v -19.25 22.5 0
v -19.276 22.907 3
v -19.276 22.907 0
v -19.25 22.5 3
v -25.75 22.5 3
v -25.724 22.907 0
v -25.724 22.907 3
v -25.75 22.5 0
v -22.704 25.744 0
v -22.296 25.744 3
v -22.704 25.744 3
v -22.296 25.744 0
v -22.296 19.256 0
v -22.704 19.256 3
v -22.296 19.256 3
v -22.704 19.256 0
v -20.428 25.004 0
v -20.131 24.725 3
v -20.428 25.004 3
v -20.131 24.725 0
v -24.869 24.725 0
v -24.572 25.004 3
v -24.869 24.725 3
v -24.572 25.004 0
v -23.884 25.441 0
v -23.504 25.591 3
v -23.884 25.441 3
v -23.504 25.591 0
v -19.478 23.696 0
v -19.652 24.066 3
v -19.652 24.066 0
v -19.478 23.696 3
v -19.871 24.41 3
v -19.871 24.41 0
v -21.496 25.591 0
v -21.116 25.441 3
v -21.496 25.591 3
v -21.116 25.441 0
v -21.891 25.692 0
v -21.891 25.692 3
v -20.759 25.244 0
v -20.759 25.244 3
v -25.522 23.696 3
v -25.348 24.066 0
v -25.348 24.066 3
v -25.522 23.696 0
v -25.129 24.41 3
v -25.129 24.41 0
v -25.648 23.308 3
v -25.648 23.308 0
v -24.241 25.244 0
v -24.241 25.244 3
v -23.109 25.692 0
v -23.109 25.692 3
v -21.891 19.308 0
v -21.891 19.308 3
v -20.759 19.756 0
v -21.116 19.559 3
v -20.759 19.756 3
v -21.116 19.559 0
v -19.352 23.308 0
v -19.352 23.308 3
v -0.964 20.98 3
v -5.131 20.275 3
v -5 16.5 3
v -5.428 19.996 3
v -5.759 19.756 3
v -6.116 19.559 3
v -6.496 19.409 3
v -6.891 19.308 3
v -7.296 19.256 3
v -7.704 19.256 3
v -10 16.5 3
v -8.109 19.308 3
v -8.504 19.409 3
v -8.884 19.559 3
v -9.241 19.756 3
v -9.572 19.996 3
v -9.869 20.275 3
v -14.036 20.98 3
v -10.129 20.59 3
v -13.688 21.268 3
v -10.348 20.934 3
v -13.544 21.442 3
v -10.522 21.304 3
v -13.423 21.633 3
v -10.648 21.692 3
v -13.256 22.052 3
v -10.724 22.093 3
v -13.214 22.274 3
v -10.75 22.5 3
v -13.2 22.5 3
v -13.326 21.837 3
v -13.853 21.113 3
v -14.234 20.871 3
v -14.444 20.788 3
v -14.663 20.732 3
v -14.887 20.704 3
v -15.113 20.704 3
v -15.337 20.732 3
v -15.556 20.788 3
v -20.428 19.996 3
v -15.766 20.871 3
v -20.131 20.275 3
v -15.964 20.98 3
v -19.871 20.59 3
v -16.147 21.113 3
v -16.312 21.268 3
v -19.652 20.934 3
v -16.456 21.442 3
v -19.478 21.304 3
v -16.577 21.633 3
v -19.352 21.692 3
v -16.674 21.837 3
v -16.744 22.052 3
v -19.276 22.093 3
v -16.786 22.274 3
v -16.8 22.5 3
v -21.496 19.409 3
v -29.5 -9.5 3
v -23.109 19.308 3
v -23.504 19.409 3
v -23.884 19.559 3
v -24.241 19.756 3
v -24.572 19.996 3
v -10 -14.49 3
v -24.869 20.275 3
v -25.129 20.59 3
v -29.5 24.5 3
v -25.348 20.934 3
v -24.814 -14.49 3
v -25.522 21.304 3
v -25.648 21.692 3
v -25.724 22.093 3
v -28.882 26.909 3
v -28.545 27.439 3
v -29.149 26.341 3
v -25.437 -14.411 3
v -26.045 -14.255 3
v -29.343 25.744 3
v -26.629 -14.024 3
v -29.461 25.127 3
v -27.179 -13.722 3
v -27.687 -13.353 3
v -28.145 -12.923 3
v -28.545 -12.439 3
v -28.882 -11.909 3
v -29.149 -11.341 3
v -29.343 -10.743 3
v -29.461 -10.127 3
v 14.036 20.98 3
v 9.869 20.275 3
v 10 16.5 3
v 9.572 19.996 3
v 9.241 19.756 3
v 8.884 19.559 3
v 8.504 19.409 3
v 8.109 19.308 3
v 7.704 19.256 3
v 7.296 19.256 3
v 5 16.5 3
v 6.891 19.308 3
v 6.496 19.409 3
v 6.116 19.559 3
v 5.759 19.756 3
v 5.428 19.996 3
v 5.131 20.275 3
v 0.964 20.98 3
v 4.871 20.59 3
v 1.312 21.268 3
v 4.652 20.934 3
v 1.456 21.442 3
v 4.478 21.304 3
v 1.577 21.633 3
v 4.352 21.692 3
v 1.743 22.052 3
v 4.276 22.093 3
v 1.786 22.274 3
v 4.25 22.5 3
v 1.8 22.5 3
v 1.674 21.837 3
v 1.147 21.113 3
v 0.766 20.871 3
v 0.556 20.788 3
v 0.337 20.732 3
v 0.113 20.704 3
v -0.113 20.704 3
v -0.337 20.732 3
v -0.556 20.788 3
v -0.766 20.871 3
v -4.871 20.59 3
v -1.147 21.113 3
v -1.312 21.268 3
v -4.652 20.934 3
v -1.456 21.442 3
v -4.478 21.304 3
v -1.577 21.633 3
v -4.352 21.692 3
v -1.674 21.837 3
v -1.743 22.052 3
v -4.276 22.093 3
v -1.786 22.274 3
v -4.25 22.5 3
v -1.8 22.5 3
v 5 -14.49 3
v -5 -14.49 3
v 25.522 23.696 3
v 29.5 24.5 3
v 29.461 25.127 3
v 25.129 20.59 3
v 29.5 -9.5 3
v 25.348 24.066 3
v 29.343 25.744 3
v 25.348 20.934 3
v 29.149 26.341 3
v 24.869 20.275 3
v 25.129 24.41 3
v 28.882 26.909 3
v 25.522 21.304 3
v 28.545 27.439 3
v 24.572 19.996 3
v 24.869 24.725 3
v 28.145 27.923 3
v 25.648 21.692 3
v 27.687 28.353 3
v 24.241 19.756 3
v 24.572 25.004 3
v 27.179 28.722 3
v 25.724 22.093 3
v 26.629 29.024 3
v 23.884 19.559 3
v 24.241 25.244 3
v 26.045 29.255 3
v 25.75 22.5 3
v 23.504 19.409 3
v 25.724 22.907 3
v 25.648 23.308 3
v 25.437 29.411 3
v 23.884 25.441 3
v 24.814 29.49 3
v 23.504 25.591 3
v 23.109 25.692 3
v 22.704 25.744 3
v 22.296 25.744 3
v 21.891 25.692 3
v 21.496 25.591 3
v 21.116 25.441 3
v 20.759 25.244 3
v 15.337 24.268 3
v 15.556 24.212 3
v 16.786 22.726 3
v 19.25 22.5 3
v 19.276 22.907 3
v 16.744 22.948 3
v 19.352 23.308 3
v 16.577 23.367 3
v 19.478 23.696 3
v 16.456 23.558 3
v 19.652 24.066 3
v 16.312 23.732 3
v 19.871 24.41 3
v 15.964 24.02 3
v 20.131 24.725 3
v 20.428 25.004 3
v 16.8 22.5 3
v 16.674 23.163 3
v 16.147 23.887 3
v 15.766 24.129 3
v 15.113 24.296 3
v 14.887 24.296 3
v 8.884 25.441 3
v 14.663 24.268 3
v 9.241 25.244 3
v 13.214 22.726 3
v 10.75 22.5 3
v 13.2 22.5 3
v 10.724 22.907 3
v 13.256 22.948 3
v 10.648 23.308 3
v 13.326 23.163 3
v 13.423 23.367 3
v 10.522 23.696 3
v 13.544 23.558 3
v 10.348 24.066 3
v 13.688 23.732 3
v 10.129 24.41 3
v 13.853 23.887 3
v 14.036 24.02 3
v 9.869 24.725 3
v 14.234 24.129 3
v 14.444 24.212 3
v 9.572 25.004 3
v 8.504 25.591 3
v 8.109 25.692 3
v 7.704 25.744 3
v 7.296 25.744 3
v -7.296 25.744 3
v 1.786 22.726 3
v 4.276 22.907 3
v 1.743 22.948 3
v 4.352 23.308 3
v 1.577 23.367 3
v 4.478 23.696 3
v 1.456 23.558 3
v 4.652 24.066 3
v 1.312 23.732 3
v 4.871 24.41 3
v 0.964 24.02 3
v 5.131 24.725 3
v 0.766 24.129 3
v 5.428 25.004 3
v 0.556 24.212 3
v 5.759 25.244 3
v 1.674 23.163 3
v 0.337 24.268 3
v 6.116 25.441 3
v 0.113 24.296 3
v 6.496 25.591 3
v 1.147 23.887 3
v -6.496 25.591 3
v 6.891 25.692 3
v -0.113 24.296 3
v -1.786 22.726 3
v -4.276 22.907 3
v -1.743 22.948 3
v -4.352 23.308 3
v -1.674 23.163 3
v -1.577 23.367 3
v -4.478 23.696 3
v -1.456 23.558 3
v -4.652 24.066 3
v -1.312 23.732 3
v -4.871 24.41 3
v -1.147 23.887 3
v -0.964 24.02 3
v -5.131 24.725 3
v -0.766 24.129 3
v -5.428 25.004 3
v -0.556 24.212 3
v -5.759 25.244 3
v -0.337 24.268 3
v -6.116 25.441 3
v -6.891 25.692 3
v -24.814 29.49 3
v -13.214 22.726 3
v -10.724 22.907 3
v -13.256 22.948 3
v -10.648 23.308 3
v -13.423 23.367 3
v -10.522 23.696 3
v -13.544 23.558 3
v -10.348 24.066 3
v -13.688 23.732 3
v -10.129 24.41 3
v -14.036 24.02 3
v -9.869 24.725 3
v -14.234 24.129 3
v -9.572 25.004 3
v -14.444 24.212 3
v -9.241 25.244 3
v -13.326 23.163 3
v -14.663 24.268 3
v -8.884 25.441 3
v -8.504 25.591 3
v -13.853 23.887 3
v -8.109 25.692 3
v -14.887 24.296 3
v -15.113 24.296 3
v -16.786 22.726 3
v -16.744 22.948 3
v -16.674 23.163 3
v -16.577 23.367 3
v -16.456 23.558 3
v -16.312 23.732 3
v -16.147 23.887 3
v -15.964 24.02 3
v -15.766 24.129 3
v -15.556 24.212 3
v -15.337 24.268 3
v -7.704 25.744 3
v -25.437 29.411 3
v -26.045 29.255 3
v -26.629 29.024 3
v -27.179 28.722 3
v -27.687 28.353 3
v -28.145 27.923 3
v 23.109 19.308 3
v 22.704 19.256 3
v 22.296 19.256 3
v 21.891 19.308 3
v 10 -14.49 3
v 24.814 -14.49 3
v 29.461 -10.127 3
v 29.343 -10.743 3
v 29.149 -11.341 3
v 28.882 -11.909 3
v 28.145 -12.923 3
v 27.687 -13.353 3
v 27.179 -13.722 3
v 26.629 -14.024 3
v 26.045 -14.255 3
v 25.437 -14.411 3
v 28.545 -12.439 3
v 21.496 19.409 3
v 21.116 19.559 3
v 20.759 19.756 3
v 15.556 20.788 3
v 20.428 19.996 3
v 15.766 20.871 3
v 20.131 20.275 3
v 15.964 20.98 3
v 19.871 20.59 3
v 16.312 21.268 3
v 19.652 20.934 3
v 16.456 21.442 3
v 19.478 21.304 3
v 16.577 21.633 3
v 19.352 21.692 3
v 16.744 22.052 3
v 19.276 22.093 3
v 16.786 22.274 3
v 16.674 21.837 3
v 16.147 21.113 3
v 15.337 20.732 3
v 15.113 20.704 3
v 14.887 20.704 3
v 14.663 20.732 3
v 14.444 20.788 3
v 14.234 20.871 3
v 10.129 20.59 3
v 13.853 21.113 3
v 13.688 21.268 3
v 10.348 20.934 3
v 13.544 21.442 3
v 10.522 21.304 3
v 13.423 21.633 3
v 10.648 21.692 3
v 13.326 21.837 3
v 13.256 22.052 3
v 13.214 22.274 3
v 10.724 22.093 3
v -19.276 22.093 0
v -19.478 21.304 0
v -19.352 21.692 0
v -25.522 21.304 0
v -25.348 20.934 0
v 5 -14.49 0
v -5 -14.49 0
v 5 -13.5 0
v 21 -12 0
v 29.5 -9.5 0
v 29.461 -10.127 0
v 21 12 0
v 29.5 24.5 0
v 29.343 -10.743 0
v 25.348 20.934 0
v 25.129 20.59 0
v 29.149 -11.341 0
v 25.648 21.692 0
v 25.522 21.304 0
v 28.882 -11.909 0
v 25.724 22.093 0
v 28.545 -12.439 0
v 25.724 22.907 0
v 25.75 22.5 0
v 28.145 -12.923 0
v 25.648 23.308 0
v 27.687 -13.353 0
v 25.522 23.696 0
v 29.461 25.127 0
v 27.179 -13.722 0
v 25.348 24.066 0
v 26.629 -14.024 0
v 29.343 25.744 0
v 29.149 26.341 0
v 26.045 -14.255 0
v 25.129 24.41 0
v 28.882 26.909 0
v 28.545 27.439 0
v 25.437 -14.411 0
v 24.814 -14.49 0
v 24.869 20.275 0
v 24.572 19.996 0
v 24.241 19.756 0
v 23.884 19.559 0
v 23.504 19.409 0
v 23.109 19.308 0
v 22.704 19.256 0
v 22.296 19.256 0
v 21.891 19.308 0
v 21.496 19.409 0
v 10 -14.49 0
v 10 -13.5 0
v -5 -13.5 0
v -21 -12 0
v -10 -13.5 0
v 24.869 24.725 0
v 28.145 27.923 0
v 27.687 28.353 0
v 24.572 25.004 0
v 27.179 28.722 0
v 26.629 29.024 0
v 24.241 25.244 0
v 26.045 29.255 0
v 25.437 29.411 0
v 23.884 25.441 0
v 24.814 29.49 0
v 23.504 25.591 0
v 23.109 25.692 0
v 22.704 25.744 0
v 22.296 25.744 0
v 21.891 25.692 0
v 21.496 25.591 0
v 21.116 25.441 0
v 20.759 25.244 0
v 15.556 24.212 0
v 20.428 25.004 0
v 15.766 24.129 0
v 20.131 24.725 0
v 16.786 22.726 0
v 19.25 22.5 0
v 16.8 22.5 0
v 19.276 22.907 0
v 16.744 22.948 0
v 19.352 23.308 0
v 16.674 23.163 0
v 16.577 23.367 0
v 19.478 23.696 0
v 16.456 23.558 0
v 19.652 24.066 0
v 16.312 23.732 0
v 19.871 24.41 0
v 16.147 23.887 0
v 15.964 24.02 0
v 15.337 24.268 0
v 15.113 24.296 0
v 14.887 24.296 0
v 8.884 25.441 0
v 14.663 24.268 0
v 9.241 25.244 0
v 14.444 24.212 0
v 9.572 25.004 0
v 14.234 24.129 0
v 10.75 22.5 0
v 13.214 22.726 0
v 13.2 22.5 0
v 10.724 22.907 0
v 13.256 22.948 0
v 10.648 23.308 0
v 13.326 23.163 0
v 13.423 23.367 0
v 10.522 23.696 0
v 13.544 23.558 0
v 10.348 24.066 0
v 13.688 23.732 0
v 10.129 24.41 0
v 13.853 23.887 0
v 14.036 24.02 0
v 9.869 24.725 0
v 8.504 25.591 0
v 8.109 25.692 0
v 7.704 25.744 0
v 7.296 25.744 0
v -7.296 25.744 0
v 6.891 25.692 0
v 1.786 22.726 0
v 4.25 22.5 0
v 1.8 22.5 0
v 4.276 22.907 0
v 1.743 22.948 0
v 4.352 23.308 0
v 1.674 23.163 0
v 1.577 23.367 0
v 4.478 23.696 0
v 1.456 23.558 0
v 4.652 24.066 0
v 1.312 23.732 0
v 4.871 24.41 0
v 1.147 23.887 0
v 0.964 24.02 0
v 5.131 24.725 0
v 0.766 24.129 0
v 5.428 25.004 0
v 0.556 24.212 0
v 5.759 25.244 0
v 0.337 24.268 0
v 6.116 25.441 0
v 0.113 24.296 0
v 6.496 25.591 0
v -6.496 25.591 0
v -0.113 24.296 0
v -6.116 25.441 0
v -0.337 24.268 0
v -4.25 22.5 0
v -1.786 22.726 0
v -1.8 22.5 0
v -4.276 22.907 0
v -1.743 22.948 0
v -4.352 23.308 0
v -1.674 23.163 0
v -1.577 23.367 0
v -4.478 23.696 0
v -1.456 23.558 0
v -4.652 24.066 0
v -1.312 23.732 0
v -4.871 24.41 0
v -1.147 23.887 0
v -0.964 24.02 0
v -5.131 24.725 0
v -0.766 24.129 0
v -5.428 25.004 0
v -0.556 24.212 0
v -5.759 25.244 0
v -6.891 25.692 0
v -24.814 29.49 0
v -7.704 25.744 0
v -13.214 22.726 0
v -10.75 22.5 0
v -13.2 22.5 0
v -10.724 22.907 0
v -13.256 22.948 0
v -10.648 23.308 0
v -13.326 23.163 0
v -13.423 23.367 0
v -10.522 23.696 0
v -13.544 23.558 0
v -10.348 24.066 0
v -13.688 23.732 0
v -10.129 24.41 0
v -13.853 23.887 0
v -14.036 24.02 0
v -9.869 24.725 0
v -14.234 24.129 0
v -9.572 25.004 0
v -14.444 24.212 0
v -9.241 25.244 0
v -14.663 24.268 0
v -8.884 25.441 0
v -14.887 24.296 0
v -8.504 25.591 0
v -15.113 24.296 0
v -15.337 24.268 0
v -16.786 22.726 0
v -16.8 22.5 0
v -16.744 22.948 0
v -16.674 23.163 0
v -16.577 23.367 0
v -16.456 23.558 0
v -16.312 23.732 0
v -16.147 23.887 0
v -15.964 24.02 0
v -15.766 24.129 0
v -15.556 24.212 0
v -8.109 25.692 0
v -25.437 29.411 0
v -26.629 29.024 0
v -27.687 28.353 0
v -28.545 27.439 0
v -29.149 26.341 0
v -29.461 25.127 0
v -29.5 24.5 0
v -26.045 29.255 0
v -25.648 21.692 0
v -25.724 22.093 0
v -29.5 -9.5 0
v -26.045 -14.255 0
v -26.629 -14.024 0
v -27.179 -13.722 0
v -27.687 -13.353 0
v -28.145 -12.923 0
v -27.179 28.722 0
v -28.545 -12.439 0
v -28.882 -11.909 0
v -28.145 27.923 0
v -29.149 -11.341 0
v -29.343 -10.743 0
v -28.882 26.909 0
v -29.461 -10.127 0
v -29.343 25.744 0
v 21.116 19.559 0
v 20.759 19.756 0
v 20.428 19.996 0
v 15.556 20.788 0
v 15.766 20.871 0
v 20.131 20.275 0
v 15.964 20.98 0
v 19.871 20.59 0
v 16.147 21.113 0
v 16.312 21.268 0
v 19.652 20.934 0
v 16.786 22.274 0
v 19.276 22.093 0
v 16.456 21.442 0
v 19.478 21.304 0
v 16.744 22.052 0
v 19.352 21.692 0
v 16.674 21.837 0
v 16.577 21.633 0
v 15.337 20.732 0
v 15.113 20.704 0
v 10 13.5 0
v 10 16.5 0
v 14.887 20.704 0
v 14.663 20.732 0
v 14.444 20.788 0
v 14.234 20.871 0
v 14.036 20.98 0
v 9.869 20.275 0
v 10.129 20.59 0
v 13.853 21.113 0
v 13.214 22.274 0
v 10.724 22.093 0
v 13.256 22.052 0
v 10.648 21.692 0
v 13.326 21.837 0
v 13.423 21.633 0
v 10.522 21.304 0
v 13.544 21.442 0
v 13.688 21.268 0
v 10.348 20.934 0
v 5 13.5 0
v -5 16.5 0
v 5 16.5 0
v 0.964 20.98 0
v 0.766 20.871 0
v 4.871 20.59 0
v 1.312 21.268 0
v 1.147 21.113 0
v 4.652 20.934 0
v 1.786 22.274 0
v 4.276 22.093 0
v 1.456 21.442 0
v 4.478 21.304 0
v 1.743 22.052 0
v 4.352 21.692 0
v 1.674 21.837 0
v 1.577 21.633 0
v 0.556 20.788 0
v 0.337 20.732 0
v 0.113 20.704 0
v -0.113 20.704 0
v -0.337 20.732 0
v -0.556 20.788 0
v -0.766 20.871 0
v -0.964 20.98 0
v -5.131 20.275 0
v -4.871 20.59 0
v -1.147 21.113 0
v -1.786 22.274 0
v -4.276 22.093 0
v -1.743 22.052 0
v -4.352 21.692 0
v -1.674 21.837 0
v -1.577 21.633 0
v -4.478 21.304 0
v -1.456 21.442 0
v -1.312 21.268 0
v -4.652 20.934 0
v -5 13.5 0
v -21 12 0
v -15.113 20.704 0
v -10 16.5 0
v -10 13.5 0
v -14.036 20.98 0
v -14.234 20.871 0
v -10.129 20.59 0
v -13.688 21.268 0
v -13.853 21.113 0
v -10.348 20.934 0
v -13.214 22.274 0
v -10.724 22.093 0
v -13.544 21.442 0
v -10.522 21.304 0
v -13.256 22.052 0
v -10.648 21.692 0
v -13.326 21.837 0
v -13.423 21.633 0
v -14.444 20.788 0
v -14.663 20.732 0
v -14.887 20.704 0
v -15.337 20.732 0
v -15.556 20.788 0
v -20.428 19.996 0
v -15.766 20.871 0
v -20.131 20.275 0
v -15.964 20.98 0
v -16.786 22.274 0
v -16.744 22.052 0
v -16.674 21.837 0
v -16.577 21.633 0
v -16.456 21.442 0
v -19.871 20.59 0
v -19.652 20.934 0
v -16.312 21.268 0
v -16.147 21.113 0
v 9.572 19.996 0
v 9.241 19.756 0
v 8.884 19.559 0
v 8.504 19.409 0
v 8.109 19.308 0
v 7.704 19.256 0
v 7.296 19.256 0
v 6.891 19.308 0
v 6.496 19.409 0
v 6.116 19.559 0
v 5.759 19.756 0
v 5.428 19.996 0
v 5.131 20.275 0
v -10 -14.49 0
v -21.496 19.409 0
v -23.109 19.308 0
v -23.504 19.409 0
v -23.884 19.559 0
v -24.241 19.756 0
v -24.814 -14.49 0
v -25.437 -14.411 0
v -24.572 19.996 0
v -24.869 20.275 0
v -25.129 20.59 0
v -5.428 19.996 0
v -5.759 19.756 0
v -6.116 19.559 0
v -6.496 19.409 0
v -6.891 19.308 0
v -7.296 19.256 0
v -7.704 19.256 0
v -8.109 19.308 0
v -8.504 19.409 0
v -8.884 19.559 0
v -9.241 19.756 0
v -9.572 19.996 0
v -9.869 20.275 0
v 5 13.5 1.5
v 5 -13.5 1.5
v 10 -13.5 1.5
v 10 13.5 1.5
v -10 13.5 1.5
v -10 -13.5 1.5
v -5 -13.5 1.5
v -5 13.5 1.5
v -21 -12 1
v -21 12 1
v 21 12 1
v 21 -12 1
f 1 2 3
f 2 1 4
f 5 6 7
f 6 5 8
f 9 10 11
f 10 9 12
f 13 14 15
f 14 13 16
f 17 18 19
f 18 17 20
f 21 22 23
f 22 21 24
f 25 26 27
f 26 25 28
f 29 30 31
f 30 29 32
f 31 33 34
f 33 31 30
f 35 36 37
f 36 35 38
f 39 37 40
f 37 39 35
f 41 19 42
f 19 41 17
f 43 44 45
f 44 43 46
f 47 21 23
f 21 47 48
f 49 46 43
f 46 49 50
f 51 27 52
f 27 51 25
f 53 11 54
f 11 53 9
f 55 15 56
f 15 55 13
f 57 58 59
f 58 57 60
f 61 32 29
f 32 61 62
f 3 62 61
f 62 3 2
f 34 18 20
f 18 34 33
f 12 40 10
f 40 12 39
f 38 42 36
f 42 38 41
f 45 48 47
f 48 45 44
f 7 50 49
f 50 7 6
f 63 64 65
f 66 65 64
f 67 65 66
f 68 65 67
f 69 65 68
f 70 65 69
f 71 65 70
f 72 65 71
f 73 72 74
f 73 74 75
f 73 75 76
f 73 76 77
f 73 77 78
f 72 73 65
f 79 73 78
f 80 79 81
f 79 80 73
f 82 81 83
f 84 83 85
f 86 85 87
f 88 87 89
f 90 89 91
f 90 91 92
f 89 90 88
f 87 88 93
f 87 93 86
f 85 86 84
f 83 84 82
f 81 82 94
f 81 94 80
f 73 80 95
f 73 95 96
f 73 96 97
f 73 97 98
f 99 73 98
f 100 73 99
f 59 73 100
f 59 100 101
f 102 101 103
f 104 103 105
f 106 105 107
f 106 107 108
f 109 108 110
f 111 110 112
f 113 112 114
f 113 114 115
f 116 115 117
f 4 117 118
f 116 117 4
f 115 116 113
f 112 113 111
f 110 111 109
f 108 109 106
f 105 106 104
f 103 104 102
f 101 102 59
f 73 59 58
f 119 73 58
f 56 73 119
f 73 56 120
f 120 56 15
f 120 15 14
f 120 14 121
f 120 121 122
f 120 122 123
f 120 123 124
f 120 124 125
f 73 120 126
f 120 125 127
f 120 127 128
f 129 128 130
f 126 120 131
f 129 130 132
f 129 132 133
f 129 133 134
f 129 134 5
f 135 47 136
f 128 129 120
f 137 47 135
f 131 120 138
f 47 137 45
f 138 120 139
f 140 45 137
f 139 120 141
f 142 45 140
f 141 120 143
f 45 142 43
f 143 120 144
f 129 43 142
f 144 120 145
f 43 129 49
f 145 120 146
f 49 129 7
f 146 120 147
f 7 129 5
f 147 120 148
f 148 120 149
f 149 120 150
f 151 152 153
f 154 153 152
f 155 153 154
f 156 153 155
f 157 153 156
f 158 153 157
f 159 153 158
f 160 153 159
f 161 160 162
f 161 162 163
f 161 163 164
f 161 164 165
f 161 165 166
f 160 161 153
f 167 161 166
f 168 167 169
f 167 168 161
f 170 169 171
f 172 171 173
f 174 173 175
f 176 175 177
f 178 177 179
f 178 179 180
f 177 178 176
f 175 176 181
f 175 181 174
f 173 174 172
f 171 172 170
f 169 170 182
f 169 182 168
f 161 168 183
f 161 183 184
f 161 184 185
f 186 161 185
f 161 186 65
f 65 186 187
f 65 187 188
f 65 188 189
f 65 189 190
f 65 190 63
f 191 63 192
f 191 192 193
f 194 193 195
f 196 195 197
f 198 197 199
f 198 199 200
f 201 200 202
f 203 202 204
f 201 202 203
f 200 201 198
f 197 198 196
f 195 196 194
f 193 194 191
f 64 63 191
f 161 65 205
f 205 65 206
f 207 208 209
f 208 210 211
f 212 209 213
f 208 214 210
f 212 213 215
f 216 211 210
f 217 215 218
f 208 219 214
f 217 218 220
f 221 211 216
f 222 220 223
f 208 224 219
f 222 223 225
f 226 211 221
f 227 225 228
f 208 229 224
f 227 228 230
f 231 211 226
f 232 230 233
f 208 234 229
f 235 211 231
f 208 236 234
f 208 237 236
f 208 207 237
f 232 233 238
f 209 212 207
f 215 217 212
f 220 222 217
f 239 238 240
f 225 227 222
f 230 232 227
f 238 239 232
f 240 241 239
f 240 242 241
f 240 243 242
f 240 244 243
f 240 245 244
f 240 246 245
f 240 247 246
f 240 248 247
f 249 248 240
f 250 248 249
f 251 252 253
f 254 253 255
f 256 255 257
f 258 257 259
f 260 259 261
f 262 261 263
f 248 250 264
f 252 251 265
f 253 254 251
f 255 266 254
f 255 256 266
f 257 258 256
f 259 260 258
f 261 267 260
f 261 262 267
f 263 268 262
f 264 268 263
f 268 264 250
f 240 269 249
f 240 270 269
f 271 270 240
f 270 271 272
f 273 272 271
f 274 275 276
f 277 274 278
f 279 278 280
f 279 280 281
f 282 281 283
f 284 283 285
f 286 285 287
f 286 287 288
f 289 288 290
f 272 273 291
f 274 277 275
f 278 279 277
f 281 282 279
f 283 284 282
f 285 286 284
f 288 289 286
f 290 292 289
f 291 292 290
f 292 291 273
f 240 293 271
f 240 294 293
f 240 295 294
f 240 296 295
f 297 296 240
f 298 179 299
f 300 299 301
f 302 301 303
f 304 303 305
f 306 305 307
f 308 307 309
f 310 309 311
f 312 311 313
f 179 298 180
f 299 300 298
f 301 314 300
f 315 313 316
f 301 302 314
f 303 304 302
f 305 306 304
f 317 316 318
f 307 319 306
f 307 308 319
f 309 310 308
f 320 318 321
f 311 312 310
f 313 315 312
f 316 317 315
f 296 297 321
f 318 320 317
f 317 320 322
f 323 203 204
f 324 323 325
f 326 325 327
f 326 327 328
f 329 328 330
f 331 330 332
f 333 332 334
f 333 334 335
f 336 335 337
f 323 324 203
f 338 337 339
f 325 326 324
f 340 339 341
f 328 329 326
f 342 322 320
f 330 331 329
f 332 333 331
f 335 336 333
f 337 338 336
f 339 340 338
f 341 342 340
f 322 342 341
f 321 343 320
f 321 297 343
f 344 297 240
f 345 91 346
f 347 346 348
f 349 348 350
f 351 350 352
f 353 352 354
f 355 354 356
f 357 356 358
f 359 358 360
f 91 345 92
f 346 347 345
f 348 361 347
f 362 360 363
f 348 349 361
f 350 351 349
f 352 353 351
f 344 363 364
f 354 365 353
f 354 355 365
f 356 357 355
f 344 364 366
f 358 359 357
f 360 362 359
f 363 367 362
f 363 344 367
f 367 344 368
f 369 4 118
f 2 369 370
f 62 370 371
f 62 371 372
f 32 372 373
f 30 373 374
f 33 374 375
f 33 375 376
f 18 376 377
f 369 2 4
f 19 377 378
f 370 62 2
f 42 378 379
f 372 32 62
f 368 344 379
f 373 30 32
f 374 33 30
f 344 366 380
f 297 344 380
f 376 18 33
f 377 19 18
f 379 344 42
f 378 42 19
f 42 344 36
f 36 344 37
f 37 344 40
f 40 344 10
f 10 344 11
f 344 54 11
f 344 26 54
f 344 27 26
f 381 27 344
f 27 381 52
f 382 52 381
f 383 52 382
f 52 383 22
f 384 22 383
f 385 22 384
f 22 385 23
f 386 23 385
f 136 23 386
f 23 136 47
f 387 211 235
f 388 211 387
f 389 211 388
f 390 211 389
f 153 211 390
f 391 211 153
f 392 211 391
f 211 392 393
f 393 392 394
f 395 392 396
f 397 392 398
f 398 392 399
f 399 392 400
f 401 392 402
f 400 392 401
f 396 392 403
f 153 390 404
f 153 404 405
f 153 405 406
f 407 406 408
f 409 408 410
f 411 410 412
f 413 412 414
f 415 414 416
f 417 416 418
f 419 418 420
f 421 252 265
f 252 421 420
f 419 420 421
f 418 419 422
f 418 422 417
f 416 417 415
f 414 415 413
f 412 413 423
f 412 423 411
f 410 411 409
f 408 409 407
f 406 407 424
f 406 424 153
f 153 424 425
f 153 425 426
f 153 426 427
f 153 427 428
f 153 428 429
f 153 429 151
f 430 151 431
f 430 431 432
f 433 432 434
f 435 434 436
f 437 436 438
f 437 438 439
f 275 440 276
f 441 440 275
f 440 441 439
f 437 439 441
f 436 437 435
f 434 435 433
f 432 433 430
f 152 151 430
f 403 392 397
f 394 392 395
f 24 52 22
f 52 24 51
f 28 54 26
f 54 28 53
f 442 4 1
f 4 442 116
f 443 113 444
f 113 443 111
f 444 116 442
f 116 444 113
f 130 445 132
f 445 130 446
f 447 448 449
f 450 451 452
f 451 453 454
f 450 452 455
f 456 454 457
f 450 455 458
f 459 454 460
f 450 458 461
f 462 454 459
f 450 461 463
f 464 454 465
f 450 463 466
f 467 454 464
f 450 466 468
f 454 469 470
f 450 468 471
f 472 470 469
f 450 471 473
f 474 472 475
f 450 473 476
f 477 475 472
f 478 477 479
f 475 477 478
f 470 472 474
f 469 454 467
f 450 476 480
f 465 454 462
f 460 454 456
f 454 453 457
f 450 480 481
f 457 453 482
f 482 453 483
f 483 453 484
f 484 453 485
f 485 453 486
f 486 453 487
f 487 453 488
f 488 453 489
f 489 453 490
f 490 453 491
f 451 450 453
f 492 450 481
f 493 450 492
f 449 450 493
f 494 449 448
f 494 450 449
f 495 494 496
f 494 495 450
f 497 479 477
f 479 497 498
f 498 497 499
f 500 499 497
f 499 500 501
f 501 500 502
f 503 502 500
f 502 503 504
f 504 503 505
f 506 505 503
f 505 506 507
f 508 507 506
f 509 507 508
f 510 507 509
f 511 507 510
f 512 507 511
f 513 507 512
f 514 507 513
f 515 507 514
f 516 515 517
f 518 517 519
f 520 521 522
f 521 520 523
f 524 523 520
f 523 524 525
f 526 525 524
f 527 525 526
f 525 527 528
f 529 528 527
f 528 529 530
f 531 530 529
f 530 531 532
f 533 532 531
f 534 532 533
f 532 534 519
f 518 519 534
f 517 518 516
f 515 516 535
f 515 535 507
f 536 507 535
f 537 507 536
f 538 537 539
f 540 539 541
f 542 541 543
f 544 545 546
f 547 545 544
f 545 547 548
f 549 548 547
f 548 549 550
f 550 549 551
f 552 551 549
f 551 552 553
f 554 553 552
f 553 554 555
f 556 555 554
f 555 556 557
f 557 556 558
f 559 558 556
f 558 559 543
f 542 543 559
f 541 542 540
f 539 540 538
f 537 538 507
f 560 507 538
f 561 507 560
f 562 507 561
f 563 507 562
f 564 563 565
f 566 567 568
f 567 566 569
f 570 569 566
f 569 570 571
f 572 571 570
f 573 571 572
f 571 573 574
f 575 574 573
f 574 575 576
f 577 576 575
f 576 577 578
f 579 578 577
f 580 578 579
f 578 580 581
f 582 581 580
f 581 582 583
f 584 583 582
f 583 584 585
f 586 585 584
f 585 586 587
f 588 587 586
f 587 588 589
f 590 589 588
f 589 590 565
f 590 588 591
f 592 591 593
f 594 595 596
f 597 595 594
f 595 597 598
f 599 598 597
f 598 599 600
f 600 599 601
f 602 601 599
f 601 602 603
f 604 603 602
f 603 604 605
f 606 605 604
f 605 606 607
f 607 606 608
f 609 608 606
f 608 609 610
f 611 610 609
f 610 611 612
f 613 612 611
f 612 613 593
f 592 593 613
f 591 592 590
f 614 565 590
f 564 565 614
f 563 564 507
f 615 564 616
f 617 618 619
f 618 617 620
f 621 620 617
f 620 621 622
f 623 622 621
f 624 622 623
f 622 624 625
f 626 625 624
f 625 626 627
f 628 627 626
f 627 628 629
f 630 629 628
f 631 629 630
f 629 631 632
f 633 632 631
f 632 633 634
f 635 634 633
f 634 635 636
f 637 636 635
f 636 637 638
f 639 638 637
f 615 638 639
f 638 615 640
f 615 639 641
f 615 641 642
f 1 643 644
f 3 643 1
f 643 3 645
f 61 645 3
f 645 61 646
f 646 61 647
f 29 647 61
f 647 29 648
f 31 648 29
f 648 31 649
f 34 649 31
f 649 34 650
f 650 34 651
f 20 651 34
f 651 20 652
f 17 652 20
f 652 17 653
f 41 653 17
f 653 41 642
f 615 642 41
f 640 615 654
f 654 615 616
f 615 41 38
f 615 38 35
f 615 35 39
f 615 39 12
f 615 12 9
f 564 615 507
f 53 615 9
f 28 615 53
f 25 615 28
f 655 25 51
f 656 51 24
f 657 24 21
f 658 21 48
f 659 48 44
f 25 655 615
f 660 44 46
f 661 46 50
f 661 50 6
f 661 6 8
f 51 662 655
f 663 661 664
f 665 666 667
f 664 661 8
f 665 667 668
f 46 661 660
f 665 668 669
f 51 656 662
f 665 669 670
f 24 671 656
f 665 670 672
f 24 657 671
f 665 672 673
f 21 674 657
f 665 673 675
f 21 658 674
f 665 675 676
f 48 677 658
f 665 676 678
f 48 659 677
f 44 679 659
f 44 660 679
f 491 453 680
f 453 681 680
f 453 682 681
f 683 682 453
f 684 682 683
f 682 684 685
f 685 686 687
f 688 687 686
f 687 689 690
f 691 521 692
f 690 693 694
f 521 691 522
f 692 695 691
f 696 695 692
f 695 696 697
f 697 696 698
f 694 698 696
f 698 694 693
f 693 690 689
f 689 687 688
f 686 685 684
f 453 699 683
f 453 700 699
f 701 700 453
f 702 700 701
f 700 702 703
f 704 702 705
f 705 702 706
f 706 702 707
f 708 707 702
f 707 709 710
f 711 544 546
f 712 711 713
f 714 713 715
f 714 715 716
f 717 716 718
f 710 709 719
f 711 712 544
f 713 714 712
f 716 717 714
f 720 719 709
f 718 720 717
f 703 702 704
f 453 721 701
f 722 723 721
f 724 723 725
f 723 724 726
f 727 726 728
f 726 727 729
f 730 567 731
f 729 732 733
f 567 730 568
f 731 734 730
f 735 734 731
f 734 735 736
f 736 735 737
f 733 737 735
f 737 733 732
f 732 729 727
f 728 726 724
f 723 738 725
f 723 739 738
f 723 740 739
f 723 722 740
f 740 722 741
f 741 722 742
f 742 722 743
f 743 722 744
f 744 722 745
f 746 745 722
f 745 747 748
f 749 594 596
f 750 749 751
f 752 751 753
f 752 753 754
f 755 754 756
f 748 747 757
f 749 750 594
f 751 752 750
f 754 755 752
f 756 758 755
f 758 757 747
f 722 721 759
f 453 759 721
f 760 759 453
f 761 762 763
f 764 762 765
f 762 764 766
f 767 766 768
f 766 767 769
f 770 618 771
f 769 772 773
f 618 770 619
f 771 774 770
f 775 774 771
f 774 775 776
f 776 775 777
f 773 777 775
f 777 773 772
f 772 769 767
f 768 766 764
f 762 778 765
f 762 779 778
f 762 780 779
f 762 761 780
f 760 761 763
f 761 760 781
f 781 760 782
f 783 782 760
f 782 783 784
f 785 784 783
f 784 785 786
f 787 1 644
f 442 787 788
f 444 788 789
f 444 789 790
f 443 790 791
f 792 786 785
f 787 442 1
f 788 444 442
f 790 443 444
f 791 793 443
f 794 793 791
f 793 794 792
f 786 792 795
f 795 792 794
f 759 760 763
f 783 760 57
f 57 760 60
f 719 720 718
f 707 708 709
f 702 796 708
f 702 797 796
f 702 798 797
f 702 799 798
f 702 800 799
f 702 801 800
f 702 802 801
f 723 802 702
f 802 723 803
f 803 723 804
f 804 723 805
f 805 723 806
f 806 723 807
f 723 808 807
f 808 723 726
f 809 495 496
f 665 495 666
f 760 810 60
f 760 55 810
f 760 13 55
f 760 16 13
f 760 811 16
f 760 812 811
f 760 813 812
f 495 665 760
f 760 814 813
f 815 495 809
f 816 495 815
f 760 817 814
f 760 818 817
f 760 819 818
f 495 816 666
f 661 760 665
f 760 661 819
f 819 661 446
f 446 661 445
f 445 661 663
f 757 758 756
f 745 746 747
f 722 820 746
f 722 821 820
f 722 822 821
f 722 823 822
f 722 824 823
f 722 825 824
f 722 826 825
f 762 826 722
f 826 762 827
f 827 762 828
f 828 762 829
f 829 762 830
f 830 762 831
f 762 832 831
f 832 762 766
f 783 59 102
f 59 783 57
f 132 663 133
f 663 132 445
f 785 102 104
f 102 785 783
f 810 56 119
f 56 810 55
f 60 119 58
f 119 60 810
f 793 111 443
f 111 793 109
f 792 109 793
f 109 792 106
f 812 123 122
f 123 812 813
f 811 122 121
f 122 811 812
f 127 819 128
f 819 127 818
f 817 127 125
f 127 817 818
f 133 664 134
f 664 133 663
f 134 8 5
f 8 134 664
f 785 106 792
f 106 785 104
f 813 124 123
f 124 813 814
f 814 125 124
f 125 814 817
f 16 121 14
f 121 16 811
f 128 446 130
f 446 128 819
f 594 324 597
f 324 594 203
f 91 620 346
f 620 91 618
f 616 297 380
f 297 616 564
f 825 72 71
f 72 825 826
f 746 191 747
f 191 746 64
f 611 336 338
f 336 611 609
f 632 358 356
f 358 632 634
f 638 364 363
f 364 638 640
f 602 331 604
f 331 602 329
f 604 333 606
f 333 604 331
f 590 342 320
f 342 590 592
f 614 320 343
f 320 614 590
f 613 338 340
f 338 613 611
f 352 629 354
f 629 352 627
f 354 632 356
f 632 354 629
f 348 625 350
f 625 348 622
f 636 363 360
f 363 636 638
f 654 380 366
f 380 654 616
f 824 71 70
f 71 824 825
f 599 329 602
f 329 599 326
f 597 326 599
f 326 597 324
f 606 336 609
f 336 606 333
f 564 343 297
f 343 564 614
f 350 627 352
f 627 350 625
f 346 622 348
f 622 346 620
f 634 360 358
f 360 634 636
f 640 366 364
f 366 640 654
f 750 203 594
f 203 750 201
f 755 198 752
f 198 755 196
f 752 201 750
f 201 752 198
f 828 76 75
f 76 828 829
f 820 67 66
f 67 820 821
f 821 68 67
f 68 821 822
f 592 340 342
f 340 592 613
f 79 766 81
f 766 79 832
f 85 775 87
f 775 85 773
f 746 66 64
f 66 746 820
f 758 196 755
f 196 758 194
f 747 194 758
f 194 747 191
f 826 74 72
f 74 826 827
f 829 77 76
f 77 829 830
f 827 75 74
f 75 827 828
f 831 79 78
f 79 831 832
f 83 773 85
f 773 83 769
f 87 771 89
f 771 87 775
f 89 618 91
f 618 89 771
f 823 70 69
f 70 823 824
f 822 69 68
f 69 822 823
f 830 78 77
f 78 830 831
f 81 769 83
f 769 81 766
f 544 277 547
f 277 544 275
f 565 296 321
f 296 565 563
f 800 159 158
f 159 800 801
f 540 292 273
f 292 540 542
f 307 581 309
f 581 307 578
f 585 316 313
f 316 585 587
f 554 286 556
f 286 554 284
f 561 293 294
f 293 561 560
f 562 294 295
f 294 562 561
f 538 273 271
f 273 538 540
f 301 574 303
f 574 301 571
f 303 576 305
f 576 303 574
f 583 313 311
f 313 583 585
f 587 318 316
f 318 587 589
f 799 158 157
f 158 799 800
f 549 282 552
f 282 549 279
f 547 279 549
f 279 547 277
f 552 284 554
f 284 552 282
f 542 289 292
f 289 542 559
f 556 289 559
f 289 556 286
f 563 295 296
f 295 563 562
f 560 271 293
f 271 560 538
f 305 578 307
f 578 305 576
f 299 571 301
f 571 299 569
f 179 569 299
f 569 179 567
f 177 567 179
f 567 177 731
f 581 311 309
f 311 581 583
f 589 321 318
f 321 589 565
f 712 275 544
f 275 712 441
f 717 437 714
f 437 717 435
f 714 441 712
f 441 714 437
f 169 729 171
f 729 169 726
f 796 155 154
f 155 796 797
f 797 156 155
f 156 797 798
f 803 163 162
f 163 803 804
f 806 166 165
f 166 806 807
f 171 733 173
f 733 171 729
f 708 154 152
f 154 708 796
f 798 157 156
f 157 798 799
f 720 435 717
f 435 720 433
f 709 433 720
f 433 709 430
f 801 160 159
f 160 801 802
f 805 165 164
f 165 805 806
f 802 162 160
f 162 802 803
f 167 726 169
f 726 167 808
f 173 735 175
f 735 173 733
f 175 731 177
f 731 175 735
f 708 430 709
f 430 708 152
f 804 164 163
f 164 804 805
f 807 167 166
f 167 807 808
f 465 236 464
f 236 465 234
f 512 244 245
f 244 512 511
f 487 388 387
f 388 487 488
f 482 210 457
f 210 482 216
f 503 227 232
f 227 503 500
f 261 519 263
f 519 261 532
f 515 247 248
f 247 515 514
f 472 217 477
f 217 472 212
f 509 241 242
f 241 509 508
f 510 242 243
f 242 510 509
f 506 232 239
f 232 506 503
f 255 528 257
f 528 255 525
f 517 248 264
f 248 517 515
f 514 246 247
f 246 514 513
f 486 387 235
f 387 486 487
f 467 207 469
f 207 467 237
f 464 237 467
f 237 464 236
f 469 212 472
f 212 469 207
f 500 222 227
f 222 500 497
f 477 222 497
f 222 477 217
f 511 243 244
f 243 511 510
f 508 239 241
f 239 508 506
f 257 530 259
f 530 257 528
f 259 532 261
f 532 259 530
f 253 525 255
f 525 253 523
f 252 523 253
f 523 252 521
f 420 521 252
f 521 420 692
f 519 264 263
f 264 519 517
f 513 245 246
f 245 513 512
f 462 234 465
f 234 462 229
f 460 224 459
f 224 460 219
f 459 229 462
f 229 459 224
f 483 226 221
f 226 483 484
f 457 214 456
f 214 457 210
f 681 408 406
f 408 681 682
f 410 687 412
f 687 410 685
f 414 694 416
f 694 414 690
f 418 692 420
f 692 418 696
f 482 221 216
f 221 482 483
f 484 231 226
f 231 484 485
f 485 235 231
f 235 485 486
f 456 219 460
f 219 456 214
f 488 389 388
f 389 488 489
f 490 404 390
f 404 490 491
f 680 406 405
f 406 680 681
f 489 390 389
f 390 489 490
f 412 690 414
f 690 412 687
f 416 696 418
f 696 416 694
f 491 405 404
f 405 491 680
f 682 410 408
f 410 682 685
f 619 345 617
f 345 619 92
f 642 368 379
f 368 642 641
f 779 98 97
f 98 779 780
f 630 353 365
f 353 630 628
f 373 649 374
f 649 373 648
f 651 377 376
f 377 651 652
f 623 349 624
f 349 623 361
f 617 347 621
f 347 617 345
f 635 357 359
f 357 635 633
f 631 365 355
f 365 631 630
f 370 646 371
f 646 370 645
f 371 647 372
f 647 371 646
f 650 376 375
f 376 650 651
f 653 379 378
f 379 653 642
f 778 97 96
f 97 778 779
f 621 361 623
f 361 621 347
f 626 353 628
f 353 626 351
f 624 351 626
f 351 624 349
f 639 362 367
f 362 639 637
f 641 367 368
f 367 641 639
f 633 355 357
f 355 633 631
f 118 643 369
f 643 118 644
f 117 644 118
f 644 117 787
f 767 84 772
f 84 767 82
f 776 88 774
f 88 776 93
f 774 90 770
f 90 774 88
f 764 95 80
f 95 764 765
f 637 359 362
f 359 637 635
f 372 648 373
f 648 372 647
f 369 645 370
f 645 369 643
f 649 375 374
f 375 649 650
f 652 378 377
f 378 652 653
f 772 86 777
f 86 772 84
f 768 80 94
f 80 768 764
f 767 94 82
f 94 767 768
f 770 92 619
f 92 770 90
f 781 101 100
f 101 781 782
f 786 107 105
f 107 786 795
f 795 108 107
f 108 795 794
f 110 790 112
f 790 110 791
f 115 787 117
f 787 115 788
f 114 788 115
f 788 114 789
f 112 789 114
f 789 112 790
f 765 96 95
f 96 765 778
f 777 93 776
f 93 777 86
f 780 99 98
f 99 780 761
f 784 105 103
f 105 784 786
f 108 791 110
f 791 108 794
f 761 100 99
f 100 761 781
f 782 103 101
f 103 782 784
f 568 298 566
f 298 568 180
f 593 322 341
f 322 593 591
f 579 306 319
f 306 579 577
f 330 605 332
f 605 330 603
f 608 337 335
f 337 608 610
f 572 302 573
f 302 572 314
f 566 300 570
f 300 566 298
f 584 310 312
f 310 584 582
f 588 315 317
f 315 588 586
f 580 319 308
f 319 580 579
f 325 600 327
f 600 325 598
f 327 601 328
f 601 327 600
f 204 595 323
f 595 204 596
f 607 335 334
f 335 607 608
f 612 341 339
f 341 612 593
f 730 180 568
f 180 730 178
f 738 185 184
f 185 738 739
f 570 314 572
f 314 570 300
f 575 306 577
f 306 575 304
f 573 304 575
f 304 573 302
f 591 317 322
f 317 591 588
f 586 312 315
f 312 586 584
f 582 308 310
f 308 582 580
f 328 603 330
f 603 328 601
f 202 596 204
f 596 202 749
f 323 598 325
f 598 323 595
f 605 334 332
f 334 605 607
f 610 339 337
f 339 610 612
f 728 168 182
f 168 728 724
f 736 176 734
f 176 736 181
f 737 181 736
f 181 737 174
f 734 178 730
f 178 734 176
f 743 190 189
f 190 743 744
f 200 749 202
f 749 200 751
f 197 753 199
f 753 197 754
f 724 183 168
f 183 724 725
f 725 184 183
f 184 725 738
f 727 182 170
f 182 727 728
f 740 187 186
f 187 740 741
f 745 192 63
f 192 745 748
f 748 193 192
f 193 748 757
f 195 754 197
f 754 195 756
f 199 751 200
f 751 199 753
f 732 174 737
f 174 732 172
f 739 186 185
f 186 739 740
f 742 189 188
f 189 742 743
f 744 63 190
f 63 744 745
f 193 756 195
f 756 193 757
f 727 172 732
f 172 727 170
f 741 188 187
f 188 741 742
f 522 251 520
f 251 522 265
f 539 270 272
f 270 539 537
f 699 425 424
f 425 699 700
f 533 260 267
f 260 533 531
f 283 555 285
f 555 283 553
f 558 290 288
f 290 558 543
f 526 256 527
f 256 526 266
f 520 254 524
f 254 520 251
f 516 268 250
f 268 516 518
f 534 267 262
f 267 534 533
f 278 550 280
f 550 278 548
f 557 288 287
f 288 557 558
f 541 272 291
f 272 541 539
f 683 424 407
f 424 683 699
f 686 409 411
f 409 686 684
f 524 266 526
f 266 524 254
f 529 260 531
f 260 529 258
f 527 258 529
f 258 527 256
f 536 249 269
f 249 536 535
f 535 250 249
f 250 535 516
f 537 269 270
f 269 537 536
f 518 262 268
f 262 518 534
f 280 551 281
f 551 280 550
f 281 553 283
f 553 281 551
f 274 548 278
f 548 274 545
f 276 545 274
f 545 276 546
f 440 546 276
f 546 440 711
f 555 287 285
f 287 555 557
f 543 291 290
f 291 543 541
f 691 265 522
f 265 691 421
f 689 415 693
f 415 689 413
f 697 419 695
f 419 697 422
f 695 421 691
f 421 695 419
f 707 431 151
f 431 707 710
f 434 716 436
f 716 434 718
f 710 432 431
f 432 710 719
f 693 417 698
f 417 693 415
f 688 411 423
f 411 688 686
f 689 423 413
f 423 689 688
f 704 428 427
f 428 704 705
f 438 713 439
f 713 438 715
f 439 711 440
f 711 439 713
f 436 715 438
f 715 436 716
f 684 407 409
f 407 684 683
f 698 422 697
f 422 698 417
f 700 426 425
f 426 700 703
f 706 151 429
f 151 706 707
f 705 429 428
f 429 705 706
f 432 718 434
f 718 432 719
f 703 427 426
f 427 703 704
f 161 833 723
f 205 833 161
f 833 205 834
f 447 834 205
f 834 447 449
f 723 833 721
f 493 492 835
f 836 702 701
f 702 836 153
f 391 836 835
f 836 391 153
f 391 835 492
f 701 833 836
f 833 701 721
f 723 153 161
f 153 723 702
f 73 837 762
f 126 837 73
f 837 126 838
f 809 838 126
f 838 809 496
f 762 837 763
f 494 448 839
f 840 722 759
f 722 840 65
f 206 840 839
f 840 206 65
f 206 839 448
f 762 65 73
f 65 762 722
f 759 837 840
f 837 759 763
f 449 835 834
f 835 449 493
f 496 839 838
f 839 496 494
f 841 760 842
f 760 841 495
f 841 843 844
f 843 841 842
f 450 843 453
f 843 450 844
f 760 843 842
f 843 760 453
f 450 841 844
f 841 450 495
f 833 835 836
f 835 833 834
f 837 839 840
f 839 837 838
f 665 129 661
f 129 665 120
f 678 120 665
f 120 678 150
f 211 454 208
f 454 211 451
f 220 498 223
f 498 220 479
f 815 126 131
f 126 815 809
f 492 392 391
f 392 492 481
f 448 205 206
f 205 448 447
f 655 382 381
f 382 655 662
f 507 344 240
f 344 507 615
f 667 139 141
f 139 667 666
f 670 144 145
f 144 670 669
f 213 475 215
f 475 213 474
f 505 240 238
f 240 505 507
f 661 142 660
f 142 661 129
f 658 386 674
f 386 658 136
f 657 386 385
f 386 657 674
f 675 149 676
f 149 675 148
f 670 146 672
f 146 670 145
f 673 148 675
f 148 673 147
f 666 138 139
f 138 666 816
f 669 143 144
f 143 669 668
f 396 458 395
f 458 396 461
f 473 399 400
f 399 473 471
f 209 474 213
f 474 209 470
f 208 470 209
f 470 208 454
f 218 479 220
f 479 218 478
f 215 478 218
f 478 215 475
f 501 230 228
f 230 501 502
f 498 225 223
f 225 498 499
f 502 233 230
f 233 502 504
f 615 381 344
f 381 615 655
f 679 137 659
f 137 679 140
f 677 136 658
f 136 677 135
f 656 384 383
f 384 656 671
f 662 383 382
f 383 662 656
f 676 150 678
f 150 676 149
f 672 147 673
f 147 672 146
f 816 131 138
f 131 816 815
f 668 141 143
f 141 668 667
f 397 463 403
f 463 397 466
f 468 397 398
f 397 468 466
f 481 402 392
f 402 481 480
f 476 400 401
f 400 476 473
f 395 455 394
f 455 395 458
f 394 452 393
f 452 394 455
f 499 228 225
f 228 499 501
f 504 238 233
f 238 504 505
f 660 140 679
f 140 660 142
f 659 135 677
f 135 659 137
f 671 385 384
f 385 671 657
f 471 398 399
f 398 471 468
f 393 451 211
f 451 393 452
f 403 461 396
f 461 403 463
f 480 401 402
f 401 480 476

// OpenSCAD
$fn = 50;


difference() {
	union() {
		translate(v = [0, 7.5000000000, 0]) {
			hull() {
				translate(v = [-24.5000000000, 17.0000000000, 0]) {
					cylinder(h = 3, r = 5);
				}
				translate(v = [24.5000000000, 17.0000000000, 0]) {
					cylinder(h = 3, r = 5);
				}
				translate(v = [-24.5000000000, -17.0000000000, 0]) {
					cylinder(h = 3, r = 5);
				}
				translate(v = [24.5000000000, -17.0000000000, 0]) {
					cylinder(h = 3, r = 5);
				}
			}
		}
	}
	union() {
		translate(v = [-22.5000000000, 22.5000000000, 0]) {
			cylinder(h = 3, r = 3.2500000000);
		}
		translate(v = [-7.5000000000, 22.5000000000, 0]) {
			cylinder(h = 3, r = 3.2500000000);
		}
		translate(v = [7.5000000000, 22.5000000000, 0]) {
			cylinder(h = 3, r = 3.2500000000);
		}
		translate(v = [22.5000000000, 22.5000000000, 0]) {
			cylinder(h = 3, r = 3.2500000000);
		}
		translate(v = [-22.5000000000, 22.5000000000, 0]) {
			cylinder(h = 3, r = 1.8000000000);
		}
		translate(v = [-15.0000000000, 22.5000000000, 0]) {
			cylinder(h = 3, r = 1.8000000000);
		}
		translate(v = [-7.5000000000, 22.5000000000, 0]) {
			cylinder(h = 3, r = 1.8000000000);
		}
		translate(v = [0.0000000000, 22.5000000000, 0]) {
			cylinder(h = 3, r = 1.8000000000);
		}
		translate(v = [7.5000000000, 22.5000000000, 0]) {
			cylinder(h = 3, r = 1.8000000000);
		}
		translate(v = [15.0000000000, 22.5000000000, 0]) {
			cylinder(h = 3, r = 1.8000000000);
		}
		translate(v = [22.5000000000, 22.5000000000, 0]) {
			cylinder(h = 3, r = 1.8000000000);
		}
		translate(v = [-22.5000000000, 22.5000000000, 0]) {
			cylinder(h = 3, r = 1.8000000000);
		}
		translate(v = [-15.0000000000, 22.5000000000, 0]) {
			cylinder(h = 3, r = 1.8000000000);
		}
		translate(v = [-7.5000000000, 22.5000000000, 0]) {
			cylinder(h = 3, r = 1.8000000000);
		}
		translate(v = [0.0000000000, 22.5000000000, 0]) {
			cylinder(h = 3, r = 1.8000000000);
		}
		translate(v = [7.5000000000, 22.5000000000, 0]) {
			cylinder(h = 3, r = 1.8000000000);
		}
		translate(v = [15.0000000000, 22.5000000000, 0]) {
			cylinder(h = 3, r = 1.8000000000);
		}
		translate(v = [22.5000000000, 22.5000000000, 0]) {
			cylinder(h = 3, r = 1.8000000000);
		}
		translate(v = [-22.5000000000, 22.5000000000, 0]) {
			cylinder(h = 3, r = 1.8000000000);
		}
		translate(v = [-15.0000000000, 22.5000000000, 0]) {
			cylinder(h = 3, r = 1.8000000000);
		}
		translate(v = [-7.5000000000, 22.5000000000, 0]) {
			cylinder(h = 3, r = 1.8000000000);
		}
		translate(v = [0.0000000000, 22.5000000000, 0]) {
			cylinder(h = 3, r = 1.8000000000);
		}
		translate(v = [7.5000000000, 22.5000000000, 0]) {
			cylinder(h = 3, r = 1.8000000000);
		}
		translate(v = [15.0000000000, 22.5000000000, 0]) {
			cylinder(h = 3, r = 1.8000000000);
		}
		translate(v = [22.5000000000, 22.5000000000, 0]) {
			cylinder(h = 3, r = 1.8000000000);
		}
		translate(v = [5.0000000000, 13.5000000000, 0]) {
			cube(size = [5, 3, 3]);
		}
		translate(v = [-10.0000000000, 13.5000000000, 0]) {
			cube(size = [5, 3, 3]);
		}
		translate(v = [5.0000000000, -16.5000000000, 0]) {
			cube(size = [5, 3, 3]);
		}
		translate(v = [-10.0000000000, -16.5000000000, 0]) {
			cube(size = [5, 3, 3]);
		}
		#translate(v = [-21.0000000000, -12.0000000000, 0]) {
			cube(size = [42, 24, 1]);
		}
		#translate(v = [5.0000000000, -16.5000000000, 1.5000000000]) {
			cube(size = [5, 33, 1.5000000000]);
		}
		#translate(v = [-10.0000000000, -16.5000000000, 1.5000000000]) {
			cube(size = [5, 33, 1.5000000000]);
		}
	}
}
